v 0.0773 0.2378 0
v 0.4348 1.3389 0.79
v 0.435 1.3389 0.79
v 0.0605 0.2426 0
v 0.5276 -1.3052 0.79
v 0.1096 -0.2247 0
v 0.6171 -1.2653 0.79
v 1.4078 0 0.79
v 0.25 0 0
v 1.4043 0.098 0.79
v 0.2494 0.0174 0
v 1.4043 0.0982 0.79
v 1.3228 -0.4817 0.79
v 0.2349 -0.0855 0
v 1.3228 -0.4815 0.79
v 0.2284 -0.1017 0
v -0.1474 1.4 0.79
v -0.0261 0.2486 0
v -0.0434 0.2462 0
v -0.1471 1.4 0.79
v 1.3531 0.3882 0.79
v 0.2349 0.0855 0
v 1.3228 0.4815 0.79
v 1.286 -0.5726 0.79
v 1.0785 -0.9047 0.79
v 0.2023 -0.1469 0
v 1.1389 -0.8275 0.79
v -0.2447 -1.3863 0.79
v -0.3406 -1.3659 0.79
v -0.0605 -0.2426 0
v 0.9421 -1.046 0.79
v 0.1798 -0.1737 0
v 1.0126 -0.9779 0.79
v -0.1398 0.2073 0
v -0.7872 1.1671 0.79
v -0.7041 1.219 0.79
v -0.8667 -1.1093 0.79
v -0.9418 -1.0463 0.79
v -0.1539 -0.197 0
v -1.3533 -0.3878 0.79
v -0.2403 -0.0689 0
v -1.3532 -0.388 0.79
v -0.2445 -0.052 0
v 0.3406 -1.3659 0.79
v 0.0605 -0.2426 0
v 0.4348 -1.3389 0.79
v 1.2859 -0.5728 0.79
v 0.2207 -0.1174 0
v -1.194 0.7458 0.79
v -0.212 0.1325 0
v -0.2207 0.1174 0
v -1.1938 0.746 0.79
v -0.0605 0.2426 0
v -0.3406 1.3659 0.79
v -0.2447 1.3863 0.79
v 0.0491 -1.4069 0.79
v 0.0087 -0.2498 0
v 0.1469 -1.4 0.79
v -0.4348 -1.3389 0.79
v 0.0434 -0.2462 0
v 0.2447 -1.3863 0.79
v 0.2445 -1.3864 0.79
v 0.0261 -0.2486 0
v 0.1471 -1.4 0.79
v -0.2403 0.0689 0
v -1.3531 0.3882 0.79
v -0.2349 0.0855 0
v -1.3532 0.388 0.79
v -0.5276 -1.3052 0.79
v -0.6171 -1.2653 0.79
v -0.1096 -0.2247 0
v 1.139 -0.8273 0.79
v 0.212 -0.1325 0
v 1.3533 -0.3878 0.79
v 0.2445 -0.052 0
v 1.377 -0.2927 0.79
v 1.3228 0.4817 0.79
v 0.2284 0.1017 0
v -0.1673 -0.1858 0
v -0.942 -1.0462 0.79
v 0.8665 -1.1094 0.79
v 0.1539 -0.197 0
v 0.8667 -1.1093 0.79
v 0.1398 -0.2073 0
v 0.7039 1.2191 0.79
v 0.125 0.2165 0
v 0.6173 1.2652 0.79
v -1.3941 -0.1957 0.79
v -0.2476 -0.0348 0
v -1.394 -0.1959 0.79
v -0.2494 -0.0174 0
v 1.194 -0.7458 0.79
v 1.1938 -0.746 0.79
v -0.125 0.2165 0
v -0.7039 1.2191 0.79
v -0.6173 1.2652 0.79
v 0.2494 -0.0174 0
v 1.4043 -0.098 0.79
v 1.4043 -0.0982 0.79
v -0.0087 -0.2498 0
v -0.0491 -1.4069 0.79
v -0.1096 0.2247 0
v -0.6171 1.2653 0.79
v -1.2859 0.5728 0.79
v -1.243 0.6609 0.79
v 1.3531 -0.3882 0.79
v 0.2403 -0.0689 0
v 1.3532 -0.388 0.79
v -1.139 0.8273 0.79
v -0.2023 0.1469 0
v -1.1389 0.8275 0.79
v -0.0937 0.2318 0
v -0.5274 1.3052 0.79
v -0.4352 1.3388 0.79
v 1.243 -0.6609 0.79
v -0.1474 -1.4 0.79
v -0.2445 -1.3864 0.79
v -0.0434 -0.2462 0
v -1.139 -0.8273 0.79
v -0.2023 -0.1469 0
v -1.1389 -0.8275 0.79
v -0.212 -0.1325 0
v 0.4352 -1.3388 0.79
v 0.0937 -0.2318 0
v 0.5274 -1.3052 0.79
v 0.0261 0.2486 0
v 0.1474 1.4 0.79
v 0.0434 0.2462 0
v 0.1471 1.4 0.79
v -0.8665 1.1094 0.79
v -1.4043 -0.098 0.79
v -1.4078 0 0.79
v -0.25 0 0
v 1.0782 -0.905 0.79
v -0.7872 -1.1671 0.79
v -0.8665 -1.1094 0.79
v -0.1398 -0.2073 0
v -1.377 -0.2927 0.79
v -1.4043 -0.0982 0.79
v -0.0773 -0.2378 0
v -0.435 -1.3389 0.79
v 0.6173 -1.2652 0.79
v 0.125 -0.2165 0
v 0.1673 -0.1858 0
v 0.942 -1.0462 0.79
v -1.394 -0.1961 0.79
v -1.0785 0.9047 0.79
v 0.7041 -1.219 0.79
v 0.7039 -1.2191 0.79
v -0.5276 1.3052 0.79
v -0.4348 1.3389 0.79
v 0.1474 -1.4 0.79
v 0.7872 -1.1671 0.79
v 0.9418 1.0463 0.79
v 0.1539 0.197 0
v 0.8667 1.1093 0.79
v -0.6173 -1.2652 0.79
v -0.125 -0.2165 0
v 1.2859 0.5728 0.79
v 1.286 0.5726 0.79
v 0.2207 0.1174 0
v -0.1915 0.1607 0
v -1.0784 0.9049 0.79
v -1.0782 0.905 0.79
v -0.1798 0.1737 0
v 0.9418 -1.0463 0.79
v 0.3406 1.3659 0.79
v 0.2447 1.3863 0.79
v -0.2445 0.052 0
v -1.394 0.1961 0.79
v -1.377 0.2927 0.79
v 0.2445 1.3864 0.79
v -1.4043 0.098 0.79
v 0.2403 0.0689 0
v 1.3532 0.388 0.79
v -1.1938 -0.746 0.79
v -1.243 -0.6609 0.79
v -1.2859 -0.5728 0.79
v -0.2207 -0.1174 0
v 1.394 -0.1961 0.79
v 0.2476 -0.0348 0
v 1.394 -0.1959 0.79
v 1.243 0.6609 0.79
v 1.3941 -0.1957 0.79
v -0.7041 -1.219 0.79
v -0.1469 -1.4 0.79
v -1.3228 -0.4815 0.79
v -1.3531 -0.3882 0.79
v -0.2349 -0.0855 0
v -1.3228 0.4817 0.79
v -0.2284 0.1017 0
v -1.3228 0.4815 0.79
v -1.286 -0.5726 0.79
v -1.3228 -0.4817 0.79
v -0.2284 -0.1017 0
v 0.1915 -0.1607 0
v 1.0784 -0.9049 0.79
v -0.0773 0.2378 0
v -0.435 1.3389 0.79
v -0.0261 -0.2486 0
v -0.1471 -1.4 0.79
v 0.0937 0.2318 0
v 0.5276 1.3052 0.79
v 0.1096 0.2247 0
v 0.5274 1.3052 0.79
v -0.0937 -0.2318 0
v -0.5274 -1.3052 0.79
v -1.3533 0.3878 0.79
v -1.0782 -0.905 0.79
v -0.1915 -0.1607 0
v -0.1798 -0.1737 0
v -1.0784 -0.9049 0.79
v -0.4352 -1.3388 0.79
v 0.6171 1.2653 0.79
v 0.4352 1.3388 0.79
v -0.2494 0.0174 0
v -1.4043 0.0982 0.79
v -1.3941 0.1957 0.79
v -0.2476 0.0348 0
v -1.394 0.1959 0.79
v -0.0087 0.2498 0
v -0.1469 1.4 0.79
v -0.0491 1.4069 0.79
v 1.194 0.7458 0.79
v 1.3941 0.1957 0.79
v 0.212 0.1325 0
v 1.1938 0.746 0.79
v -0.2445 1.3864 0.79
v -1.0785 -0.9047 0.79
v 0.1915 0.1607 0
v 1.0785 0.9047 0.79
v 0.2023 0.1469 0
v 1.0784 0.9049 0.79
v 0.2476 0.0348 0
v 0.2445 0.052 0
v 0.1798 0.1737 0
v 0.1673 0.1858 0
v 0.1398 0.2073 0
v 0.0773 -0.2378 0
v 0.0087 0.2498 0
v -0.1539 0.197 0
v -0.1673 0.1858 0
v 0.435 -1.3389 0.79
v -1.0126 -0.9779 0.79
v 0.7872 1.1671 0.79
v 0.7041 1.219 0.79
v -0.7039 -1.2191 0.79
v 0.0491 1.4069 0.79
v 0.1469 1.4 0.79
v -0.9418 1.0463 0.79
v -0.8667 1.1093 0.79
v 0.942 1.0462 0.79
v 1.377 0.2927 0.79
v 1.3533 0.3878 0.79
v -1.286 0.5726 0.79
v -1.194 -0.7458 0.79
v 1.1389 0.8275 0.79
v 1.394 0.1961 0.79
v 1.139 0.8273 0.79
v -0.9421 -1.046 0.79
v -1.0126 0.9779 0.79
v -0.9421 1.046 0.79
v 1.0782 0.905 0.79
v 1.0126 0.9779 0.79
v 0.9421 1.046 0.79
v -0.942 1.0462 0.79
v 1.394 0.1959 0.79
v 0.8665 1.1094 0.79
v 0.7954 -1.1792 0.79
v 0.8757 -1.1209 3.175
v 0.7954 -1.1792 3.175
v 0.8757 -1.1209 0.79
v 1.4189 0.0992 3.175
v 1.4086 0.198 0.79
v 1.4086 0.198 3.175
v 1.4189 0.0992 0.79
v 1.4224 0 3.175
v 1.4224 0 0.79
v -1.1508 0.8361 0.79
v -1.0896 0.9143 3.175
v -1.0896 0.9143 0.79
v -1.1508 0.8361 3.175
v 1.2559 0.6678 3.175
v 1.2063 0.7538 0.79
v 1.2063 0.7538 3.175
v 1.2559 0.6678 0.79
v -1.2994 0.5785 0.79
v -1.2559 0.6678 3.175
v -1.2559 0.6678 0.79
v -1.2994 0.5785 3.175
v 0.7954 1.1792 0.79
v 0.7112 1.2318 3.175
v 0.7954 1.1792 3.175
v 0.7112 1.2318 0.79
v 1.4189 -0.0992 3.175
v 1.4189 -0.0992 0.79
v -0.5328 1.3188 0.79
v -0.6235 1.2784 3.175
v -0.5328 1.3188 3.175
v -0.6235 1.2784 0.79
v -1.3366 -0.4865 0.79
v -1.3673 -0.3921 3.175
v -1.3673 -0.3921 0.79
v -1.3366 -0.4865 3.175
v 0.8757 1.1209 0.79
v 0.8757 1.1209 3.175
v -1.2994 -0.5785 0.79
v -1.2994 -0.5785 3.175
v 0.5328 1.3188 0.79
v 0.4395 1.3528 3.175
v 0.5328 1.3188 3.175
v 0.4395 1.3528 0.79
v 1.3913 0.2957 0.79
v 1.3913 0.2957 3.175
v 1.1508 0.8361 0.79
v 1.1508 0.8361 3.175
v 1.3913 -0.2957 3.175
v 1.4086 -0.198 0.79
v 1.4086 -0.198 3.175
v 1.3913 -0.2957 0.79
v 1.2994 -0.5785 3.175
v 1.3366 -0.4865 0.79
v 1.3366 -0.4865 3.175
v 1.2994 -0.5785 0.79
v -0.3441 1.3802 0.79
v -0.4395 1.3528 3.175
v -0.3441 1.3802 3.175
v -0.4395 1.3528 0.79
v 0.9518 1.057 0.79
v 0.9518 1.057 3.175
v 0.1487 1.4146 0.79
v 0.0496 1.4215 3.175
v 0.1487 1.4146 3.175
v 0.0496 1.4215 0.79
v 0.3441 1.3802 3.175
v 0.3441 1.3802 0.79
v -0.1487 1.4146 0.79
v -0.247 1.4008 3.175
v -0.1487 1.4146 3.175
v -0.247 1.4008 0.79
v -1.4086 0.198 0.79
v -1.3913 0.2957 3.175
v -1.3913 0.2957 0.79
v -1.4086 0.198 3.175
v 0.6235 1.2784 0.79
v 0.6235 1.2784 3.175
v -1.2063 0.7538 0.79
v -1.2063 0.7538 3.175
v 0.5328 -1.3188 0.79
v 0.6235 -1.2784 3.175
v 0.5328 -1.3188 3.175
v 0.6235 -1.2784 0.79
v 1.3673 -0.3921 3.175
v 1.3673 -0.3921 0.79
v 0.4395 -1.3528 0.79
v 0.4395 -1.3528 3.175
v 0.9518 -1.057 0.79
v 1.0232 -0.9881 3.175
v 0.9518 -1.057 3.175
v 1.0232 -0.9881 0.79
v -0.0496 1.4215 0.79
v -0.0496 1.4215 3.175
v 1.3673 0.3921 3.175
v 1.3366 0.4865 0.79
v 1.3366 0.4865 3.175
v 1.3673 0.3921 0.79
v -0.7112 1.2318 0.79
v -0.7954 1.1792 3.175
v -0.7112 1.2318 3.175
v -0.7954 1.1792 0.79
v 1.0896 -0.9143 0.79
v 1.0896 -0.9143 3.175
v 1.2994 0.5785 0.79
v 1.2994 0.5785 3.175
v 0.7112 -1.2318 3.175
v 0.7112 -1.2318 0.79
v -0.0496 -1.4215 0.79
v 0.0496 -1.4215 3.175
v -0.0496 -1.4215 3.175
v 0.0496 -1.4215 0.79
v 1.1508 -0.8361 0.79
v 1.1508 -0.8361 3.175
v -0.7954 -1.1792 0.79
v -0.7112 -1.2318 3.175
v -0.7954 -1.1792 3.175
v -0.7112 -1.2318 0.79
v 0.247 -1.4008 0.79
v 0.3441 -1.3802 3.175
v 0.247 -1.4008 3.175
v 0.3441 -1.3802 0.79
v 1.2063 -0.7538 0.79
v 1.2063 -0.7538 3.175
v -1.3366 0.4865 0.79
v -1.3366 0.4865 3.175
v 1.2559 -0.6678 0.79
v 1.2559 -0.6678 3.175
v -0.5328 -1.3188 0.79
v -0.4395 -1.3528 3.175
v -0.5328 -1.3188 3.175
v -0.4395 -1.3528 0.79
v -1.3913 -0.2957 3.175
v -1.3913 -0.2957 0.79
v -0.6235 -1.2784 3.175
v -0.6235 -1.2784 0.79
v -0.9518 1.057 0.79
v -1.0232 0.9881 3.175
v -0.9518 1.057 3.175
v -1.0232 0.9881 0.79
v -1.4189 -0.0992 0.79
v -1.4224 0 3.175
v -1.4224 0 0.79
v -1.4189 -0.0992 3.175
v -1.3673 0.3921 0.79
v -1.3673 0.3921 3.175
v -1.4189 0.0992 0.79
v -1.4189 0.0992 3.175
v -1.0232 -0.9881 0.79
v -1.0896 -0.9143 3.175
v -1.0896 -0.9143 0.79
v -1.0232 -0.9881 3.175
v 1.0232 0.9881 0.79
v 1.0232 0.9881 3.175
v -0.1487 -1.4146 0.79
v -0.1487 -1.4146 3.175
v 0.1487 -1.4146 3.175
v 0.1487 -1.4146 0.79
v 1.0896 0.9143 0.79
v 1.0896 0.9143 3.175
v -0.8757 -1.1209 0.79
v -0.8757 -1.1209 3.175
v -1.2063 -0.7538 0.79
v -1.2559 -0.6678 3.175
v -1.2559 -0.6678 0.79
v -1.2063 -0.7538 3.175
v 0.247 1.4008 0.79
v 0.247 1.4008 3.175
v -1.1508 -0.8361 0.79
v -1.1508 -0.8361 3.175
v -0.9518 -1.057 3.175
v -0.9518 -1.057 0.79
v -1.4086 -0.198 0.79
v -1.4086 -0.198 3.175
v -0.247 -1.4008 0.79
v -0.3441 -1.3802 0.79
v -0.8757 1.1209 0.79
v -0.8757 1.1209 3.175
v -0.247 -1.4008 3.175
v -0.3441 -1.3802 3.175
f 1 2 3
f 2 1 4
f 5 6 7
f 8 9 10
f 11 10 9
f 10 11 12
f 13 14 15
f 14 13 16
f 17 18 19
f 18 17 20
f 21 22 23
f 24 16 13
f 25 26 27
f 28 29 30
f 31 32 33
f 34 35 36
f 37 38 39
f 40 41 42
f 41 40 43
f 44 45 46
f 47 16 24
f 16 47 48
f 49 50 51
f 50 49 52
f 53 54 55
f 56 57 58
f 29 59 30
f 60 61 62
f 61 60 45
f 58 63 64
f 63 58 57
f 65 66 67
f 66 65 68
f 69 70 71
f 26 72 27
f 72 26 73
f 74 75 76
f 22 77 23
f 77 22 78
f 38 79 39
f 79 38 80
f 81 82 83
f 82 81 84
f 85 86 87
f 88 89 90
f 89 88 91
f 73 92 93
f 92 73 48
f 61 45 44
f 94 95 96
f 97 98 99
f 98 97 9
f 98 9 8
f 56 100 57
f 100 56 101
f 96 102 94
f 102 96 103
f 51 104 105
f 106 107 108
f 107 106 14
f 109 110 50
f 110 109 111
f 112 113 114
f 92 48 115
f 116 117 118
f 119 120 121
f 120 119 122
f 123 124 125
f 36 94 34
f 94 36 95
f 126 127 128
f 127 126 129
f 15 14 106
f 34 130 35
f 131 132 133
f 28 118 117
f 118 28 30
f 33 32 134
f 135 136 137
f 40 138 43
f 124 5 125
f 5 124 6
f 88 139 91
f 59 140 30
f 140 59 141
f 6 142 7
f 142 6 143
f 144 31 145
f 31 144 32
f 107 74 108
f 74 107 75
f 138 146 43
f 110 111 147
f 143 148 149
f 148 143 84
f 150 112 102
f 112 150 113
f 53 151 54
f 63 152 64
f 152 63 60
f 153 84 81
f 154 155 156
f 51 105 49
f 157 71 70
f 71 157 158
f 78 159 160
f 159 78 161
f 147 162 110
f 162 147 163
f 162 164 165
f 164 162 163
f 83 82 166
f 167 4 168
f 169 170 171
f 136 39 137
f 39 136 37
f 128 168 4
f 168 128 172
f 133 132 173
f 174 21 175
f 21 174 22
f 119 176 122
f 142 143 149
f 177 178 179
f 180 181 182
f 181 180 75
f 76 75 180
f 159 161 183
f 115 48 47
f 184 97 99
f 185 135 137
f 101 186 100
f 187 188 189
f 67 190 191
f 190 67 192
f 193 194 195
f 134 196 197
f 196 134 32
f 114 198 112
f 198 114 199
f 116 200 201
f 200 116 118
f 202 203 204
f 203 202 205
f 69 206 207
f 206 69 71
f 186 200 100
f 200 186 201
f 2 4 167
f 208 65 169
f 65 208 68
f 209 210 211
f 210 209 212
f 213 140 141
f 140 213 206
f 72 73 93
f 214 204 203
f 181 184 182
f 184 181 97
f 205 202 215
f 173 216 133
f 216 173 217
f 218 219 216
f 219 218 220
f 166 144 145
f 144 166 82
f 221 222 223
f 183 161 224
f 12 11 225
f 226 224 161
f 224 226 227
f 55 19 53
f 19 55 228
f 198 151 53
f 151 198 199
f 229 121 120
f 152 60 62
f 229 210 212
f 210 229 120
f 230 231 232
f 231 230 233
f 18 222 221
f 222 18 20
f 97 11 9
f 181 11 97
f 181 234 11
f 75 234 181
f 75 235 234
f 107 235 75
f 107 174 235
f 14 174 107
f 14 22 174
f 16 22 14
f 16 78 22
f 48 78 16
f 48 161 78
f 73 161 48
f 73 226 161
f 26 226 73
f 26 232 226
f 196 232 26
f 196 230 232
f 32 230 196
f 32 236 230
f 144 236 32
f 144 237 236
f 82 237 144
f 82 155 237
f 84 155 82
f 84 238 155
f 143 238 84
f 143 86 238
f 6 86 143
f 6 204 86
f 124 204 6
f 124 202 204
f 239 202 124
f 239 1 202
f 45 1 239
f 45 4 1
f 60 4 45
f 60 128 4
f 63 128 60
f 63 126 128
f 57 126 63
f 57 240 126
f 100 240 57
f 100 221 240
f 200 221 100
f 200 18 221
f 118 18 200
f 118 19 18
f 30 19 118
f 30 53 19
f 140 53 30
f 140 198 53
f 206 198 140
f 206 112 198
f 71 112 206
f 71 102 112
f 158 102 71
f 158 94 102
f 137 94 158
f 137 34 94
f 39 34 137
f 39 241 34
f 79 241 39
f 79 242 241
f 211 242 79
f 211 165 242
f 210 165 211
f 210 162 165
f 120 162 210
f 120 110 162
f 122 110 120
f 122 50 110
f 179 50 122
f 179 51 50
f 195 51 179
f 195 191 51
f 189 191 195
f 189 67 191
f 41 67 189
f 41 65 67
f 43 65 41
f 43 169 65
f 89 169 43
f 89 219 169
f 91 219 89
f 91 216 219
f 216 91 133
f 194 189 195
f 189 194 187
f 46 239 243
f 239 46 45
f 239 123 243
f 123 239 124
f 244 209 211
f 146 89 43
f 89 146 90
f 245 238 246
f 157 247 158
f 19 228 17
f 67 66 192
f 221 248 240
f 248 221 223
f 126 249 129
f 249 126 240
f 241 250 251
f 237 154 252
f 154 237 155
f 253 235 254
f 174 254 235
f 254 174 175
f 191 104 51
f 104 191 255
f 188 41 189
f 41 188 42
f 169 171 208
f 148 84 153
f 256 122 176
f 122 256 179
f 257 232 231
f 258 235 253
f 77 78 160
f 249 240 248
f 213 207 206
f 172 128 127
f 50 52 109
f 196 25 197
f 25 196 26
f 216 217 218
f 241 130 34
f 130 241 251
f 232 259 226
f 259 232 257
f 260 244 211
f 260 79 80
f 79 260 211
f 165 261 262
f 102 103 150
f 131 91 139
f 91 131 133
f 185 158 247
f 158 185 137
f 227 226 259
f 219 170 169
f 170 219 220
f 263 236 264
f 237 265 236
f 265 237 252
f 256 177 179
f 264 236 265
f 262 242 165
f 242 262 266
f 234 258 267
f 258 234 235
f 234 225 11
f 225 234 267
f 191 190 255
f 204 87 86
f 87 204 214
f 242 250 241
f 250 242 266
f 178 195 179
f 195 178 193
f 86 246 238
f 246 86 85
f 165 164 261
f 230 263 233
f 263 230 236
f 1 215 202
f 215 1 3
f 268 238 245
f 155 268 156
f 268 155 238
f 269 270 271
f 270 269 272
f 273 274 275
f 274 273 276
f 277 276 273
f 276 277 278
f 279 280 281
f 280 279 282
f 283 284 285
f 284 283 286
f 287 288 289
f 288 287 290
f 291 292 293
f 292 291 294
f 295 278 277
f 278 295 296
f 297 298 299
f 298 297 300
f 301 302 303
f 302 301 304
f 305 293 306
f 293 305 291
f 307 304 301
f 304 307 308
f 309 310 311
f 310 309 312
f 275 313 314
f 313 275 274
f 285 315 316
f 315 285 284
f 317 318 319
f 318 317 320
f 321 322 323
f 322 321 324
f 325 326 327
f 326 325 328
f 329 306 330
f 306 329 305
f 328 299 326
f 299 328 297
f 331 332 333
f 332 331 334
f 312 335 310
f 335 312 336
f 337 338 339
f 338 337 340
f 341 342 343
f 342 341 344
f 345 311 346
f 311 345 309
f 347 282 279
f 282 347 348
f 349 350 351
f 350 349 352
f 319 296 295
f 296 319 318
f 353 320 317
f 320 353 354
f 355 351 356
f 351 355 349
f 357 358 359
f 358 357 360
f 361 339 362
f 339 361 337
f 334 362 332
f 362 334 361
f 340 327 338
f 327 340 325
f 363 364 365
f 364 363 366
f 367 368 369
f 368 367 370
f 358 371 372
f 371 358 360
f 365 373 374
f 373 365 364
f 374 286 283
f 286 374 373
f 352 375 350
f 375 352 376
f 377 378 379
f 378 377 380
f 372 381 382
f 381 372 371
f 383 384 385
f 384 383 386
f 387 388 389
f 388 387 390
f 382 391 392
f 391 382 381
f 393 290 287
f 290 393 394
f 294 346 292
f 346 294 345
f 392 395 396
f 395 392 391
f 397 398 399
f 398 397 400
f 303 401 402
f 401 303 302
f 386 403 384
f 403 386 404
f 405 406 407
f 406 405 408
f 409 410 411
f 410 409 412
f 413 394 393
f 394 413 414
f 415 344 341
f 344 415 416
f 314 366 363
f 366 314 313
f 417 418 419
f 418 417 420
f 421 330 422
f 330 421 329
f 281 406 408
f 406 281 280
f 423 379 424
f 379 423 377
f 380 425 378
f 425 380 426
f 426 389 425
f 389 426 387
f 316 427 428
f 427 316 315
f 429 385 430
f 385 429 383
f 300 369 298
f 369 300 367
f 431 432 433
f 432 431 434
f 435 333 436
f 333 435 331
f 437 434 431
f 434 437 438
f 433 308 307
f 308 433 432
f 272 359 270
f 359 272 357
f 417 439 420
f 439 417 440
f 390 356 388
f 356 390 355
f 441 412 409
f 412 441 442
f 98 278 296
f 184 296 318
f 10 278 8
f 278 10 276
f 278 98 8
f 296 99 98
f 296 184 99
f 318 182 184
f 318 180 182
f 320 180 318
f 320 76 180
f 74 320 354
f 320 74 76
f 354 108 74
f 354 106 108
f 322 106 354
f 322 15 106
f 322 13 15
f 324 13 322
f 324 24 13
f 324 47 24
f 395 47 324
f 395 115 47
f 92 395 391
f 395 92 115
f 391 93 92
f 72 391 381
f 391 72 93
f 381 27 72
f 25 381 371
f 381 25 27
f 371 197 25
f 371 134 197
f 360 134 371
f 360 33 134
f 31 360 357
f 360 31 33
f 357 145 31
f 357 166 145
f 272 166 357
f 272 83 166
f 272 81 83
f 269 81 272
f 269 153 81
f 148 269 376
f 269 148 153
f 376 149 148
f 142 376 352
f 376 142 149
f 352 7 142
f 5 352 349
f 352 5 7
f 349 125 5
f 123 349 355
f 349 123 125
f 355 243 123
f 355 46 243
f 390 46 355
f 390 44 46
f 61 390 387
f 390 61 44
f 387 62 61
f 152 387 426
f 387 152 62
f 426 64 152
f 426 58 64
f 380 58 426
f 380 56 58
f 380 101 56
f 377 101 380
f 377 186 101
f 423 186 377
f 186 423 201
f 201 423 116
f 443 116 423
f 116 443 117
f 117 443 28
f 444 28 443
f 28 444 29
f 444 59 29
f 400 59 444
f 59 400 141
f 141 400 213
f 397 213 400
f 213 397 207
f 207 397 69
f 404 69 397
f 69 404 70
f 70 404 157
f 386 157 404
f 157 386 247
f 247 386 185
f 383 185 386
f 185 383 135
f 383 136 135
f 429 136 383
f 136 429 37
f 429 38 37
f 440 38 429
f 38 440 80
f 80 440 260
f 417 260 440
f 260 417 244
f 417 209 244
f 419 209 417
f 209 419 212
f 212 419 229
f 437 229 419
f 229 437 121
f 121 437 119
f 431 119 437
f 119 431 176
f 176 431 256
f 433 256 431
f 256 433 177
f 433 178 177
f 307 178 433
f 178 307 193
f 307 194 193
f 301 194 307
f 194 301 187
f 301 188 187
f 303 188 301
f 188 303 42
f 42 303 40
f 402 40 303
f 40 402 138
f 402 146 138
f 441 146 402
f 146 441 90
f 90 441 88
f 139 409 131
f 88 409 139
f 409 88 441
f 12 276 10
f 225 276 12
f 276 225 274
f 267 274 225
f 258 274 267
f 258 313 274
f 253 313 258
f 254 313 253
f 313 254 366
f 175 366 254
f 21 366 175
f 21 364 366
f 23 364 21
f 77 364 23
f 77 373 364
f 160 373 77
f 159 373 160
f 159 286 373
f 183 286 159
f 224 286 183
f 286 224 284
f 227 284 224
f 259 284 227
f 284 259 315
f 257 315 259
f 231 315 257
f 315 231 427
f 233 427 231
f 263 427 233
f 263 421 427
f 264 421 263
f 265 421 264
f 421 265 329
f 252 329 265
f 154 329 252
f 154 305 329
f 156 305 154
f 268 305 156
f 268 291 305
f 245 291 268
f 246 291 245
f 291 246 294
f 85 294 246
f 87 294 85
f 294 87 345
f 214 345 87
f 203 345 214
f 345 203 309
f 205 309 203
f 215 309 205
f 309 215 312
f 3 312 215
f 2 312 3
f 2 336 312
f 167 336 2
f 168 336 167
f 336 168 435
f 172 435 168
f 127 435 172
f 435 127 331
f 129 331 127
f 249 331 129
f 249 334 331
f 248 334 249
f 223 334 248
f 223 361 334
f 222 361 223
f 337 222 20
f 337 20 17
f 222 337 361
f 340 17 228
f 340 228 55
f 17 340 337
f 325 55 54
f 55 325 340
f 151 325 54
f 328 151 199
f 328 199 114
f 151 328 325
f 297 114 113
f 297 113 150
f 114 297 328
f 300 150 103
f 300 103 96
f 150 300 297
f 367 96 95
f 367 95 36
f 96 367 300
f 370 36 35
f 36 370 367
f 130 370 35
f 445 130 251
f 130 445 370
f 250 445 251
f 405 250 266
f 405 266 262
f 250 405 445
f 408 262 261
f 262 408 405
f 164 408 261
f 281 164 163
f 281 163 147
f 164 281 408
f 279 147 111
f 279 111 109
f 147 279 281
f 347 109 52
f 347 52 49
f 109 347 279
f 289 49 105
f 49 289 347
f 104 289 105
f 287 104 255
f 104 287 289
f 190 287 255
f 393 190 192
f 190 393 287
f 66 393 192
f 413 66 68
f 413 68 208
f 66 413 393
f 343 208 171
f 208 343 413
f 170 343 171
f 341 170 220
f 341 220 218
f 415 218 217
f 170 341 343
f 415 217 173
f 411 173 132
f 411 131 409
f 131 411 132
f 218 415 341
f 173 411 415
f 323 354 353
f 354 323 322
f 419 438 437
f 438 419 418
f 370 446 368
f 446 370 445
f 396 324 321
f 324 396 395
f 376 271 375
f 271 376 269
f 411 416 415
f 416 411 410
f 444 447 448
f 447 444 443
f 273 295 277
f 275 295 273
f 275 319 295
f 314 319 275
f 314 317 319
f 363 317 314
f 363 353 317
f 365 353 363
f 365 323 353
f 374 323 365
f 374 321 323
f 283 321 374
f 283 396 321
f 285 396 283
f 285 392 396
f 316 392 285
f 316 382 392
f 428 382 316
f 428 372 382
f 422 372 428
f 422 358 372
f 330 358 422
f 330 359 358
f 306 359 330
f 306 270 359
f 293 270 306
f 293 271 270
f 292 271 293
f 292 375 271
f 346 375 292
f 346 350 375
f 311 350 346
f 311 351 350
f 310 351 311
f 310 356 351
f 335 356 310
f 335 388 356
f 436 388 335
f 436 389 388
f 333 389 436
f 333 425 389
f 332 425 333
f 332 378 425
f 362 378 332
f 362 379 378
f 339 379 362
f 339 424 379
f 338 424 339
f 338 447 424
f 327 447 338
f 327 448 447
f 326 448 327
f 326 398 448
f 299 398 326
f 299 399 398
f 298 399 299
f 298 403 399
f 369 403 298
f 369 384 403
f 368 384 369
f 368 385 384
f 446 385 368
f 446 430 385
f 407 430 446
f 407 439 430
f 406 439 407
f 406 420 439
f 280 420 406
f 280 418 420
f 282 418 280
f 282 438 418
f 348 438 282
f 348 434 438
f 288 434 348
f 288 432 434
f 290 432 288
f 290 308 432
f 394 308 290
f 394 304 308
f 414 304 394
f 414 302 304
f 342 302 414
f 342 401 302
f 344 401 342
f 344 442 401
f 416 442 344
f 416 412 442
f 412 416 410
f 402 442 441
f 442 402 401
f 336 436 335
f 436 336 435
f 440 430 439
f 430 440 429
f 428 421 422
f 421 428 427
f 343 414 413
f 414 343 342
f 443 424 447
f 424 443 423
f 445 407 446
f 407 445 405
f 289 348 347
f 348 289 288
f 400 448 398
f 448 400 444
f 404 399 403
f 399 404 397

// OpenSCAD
// file: ../lib/common.scad
// Shared helpers for the AR turntable part models.
//
// Every part file holds a parameter table P. Each row is:
//   [id, description, value_mm, evidence, display_unit, source_or_how_to_check]
//
// Evidence codes:
//   F  factory document          O  owner report
//   C  community drawing         S  industry standard
//   D  design choice             M  measured for this repository
//   PH placeholder: chosen only so the model has a shape. It is NOT a
//      measurement. Replace it, and change the code, once it is measured.
// License: CC BY-SA 4.0. See LICENSE at the repository root.

IN = 25.4;      // one inch, in mm. All model geometry is in mm.
EPS = 0.01;     // overlap so boolean cuts do not leave zero-thickness skins
$fa = 2;
$fs = 0.1;

// Value of parameter `id` in table t.
function pv(t, id) = t[search([id], t)[0]][2];

// Print part data for cad/tools/build.py, which reads it from the console.
module emit(meta, params, dims = []) {
    echo(META = meta);
    for (row = params) echo(PARAM = row);
    for (row = dims) echo(DIM = row);
}

// Rounded rectangle prism: centered in XY, from z = 0 to z = h.
module rr_prism(l, w, h, r) {
    translate([-l / 2 + r, -w / 2, 0]) cube([l - 2 * r, w, h]);
    translate([-l / 2, -w / 2 + r, 0]) cube([l, w - 2 * r, h]);
    for (sx = [-1, 1], sy = [-1, 1])
        translate([sx * (l / 2 - r), sy * (w / 2 - r), 0]) cylinder(r = r, h = h);
}

// Slot along X: `c` is the distance between end-radius centers.
module slot_prism(c, w, h) {
    translate([-c / 2, -w / 2, 0]) cube([c, w, h]);
    for (sx = [-1, 1]) translate([sx * c / 2, 0, 0]) cylinder(d = w, h = h);
}
// main file
// XA/XB brass set screw from the cartridge hardware set. A part to buy.
// Thread and length are from the RDW hardware drawing, December 7, 2023:
// docs/originals/ar-headshell-hardware-rev-1.pdf
// Its location on the table and its tip dimensions are not established.
// License: CC BY-SA 4.0. See LICENSE at the repository root.
include <../lib/common.scad>

variant = 1;
flat = false;

P = [
    ["SS1", "Thread major diameter, #4-40", 0.112 * IN, "S", "in", "Unified #4 major diameter; thread called out on the RDW drawing"],
    ["SS2", "Overall length", 0.125 * IN, "C", "in", "RDW hardware drawing"],
    ["SS3", "Cone tip length", 0.8, "PH", "mm", "Calipers on an original; the drawing shows a cone with no dimensions"],
    ["SS4", "Flat diameter at the tip", 0.5, "PH", "mm", "Calipers or loupe on an original"],
];

d = pv(P, "SS1");
l = pv(P, "SS2");
tip = pv(P, "SS3");
flat_d = pv(P, "SS4");

module part() {
    cylinder(d1 = flat_d, d2 = d, h = tip);
    translate([0, 0, tip - EPS]) cylinder(d = d, h = l - tip + EPS);
}

emit(
    [
        ["id", "set-screw-4-40"],
        ["title", "XA/XB set screw, #4-40"],
        ["status", "REFERENCE"],
        ["scope", "One in the original-style hardware set. Where it fits is unconfirmed: TO-CONFIRM.md, HS3"],
        ["material", "Brass, per the drawing"],
        ["density", 8.5],
        ["make", "Buy. Do not machine. 1 per set"],
        ["views", ["front", "top", "right", "iso"]],
        ["notes", [
            "Thread is shown as a plain cylinder at major diameter. Specify #4-40 UNC when buying.",
            "Do not assume this is the counterweight locking screw.",
        ]],
    ],
    P,
    [
        ["front", "v", [d / 2, 0, 0], [d / 2, 0, l], 8, "SS2"],
        ["front", "h", [-d / 2, 0, l], [d / 2, 0, l], 8, "SS1", "Ø"],
        ["front", "v", [-d / 2, 0, 0], [-d / 2, 0, tip], -8, "SS3"],
        ["front", "h", [-flat_d / 2, 0, 0], [flat_d / 2, 0, 0], -8, "SS4", "Ø"],
    ]
);

if (flat) projection() part(); else part();
